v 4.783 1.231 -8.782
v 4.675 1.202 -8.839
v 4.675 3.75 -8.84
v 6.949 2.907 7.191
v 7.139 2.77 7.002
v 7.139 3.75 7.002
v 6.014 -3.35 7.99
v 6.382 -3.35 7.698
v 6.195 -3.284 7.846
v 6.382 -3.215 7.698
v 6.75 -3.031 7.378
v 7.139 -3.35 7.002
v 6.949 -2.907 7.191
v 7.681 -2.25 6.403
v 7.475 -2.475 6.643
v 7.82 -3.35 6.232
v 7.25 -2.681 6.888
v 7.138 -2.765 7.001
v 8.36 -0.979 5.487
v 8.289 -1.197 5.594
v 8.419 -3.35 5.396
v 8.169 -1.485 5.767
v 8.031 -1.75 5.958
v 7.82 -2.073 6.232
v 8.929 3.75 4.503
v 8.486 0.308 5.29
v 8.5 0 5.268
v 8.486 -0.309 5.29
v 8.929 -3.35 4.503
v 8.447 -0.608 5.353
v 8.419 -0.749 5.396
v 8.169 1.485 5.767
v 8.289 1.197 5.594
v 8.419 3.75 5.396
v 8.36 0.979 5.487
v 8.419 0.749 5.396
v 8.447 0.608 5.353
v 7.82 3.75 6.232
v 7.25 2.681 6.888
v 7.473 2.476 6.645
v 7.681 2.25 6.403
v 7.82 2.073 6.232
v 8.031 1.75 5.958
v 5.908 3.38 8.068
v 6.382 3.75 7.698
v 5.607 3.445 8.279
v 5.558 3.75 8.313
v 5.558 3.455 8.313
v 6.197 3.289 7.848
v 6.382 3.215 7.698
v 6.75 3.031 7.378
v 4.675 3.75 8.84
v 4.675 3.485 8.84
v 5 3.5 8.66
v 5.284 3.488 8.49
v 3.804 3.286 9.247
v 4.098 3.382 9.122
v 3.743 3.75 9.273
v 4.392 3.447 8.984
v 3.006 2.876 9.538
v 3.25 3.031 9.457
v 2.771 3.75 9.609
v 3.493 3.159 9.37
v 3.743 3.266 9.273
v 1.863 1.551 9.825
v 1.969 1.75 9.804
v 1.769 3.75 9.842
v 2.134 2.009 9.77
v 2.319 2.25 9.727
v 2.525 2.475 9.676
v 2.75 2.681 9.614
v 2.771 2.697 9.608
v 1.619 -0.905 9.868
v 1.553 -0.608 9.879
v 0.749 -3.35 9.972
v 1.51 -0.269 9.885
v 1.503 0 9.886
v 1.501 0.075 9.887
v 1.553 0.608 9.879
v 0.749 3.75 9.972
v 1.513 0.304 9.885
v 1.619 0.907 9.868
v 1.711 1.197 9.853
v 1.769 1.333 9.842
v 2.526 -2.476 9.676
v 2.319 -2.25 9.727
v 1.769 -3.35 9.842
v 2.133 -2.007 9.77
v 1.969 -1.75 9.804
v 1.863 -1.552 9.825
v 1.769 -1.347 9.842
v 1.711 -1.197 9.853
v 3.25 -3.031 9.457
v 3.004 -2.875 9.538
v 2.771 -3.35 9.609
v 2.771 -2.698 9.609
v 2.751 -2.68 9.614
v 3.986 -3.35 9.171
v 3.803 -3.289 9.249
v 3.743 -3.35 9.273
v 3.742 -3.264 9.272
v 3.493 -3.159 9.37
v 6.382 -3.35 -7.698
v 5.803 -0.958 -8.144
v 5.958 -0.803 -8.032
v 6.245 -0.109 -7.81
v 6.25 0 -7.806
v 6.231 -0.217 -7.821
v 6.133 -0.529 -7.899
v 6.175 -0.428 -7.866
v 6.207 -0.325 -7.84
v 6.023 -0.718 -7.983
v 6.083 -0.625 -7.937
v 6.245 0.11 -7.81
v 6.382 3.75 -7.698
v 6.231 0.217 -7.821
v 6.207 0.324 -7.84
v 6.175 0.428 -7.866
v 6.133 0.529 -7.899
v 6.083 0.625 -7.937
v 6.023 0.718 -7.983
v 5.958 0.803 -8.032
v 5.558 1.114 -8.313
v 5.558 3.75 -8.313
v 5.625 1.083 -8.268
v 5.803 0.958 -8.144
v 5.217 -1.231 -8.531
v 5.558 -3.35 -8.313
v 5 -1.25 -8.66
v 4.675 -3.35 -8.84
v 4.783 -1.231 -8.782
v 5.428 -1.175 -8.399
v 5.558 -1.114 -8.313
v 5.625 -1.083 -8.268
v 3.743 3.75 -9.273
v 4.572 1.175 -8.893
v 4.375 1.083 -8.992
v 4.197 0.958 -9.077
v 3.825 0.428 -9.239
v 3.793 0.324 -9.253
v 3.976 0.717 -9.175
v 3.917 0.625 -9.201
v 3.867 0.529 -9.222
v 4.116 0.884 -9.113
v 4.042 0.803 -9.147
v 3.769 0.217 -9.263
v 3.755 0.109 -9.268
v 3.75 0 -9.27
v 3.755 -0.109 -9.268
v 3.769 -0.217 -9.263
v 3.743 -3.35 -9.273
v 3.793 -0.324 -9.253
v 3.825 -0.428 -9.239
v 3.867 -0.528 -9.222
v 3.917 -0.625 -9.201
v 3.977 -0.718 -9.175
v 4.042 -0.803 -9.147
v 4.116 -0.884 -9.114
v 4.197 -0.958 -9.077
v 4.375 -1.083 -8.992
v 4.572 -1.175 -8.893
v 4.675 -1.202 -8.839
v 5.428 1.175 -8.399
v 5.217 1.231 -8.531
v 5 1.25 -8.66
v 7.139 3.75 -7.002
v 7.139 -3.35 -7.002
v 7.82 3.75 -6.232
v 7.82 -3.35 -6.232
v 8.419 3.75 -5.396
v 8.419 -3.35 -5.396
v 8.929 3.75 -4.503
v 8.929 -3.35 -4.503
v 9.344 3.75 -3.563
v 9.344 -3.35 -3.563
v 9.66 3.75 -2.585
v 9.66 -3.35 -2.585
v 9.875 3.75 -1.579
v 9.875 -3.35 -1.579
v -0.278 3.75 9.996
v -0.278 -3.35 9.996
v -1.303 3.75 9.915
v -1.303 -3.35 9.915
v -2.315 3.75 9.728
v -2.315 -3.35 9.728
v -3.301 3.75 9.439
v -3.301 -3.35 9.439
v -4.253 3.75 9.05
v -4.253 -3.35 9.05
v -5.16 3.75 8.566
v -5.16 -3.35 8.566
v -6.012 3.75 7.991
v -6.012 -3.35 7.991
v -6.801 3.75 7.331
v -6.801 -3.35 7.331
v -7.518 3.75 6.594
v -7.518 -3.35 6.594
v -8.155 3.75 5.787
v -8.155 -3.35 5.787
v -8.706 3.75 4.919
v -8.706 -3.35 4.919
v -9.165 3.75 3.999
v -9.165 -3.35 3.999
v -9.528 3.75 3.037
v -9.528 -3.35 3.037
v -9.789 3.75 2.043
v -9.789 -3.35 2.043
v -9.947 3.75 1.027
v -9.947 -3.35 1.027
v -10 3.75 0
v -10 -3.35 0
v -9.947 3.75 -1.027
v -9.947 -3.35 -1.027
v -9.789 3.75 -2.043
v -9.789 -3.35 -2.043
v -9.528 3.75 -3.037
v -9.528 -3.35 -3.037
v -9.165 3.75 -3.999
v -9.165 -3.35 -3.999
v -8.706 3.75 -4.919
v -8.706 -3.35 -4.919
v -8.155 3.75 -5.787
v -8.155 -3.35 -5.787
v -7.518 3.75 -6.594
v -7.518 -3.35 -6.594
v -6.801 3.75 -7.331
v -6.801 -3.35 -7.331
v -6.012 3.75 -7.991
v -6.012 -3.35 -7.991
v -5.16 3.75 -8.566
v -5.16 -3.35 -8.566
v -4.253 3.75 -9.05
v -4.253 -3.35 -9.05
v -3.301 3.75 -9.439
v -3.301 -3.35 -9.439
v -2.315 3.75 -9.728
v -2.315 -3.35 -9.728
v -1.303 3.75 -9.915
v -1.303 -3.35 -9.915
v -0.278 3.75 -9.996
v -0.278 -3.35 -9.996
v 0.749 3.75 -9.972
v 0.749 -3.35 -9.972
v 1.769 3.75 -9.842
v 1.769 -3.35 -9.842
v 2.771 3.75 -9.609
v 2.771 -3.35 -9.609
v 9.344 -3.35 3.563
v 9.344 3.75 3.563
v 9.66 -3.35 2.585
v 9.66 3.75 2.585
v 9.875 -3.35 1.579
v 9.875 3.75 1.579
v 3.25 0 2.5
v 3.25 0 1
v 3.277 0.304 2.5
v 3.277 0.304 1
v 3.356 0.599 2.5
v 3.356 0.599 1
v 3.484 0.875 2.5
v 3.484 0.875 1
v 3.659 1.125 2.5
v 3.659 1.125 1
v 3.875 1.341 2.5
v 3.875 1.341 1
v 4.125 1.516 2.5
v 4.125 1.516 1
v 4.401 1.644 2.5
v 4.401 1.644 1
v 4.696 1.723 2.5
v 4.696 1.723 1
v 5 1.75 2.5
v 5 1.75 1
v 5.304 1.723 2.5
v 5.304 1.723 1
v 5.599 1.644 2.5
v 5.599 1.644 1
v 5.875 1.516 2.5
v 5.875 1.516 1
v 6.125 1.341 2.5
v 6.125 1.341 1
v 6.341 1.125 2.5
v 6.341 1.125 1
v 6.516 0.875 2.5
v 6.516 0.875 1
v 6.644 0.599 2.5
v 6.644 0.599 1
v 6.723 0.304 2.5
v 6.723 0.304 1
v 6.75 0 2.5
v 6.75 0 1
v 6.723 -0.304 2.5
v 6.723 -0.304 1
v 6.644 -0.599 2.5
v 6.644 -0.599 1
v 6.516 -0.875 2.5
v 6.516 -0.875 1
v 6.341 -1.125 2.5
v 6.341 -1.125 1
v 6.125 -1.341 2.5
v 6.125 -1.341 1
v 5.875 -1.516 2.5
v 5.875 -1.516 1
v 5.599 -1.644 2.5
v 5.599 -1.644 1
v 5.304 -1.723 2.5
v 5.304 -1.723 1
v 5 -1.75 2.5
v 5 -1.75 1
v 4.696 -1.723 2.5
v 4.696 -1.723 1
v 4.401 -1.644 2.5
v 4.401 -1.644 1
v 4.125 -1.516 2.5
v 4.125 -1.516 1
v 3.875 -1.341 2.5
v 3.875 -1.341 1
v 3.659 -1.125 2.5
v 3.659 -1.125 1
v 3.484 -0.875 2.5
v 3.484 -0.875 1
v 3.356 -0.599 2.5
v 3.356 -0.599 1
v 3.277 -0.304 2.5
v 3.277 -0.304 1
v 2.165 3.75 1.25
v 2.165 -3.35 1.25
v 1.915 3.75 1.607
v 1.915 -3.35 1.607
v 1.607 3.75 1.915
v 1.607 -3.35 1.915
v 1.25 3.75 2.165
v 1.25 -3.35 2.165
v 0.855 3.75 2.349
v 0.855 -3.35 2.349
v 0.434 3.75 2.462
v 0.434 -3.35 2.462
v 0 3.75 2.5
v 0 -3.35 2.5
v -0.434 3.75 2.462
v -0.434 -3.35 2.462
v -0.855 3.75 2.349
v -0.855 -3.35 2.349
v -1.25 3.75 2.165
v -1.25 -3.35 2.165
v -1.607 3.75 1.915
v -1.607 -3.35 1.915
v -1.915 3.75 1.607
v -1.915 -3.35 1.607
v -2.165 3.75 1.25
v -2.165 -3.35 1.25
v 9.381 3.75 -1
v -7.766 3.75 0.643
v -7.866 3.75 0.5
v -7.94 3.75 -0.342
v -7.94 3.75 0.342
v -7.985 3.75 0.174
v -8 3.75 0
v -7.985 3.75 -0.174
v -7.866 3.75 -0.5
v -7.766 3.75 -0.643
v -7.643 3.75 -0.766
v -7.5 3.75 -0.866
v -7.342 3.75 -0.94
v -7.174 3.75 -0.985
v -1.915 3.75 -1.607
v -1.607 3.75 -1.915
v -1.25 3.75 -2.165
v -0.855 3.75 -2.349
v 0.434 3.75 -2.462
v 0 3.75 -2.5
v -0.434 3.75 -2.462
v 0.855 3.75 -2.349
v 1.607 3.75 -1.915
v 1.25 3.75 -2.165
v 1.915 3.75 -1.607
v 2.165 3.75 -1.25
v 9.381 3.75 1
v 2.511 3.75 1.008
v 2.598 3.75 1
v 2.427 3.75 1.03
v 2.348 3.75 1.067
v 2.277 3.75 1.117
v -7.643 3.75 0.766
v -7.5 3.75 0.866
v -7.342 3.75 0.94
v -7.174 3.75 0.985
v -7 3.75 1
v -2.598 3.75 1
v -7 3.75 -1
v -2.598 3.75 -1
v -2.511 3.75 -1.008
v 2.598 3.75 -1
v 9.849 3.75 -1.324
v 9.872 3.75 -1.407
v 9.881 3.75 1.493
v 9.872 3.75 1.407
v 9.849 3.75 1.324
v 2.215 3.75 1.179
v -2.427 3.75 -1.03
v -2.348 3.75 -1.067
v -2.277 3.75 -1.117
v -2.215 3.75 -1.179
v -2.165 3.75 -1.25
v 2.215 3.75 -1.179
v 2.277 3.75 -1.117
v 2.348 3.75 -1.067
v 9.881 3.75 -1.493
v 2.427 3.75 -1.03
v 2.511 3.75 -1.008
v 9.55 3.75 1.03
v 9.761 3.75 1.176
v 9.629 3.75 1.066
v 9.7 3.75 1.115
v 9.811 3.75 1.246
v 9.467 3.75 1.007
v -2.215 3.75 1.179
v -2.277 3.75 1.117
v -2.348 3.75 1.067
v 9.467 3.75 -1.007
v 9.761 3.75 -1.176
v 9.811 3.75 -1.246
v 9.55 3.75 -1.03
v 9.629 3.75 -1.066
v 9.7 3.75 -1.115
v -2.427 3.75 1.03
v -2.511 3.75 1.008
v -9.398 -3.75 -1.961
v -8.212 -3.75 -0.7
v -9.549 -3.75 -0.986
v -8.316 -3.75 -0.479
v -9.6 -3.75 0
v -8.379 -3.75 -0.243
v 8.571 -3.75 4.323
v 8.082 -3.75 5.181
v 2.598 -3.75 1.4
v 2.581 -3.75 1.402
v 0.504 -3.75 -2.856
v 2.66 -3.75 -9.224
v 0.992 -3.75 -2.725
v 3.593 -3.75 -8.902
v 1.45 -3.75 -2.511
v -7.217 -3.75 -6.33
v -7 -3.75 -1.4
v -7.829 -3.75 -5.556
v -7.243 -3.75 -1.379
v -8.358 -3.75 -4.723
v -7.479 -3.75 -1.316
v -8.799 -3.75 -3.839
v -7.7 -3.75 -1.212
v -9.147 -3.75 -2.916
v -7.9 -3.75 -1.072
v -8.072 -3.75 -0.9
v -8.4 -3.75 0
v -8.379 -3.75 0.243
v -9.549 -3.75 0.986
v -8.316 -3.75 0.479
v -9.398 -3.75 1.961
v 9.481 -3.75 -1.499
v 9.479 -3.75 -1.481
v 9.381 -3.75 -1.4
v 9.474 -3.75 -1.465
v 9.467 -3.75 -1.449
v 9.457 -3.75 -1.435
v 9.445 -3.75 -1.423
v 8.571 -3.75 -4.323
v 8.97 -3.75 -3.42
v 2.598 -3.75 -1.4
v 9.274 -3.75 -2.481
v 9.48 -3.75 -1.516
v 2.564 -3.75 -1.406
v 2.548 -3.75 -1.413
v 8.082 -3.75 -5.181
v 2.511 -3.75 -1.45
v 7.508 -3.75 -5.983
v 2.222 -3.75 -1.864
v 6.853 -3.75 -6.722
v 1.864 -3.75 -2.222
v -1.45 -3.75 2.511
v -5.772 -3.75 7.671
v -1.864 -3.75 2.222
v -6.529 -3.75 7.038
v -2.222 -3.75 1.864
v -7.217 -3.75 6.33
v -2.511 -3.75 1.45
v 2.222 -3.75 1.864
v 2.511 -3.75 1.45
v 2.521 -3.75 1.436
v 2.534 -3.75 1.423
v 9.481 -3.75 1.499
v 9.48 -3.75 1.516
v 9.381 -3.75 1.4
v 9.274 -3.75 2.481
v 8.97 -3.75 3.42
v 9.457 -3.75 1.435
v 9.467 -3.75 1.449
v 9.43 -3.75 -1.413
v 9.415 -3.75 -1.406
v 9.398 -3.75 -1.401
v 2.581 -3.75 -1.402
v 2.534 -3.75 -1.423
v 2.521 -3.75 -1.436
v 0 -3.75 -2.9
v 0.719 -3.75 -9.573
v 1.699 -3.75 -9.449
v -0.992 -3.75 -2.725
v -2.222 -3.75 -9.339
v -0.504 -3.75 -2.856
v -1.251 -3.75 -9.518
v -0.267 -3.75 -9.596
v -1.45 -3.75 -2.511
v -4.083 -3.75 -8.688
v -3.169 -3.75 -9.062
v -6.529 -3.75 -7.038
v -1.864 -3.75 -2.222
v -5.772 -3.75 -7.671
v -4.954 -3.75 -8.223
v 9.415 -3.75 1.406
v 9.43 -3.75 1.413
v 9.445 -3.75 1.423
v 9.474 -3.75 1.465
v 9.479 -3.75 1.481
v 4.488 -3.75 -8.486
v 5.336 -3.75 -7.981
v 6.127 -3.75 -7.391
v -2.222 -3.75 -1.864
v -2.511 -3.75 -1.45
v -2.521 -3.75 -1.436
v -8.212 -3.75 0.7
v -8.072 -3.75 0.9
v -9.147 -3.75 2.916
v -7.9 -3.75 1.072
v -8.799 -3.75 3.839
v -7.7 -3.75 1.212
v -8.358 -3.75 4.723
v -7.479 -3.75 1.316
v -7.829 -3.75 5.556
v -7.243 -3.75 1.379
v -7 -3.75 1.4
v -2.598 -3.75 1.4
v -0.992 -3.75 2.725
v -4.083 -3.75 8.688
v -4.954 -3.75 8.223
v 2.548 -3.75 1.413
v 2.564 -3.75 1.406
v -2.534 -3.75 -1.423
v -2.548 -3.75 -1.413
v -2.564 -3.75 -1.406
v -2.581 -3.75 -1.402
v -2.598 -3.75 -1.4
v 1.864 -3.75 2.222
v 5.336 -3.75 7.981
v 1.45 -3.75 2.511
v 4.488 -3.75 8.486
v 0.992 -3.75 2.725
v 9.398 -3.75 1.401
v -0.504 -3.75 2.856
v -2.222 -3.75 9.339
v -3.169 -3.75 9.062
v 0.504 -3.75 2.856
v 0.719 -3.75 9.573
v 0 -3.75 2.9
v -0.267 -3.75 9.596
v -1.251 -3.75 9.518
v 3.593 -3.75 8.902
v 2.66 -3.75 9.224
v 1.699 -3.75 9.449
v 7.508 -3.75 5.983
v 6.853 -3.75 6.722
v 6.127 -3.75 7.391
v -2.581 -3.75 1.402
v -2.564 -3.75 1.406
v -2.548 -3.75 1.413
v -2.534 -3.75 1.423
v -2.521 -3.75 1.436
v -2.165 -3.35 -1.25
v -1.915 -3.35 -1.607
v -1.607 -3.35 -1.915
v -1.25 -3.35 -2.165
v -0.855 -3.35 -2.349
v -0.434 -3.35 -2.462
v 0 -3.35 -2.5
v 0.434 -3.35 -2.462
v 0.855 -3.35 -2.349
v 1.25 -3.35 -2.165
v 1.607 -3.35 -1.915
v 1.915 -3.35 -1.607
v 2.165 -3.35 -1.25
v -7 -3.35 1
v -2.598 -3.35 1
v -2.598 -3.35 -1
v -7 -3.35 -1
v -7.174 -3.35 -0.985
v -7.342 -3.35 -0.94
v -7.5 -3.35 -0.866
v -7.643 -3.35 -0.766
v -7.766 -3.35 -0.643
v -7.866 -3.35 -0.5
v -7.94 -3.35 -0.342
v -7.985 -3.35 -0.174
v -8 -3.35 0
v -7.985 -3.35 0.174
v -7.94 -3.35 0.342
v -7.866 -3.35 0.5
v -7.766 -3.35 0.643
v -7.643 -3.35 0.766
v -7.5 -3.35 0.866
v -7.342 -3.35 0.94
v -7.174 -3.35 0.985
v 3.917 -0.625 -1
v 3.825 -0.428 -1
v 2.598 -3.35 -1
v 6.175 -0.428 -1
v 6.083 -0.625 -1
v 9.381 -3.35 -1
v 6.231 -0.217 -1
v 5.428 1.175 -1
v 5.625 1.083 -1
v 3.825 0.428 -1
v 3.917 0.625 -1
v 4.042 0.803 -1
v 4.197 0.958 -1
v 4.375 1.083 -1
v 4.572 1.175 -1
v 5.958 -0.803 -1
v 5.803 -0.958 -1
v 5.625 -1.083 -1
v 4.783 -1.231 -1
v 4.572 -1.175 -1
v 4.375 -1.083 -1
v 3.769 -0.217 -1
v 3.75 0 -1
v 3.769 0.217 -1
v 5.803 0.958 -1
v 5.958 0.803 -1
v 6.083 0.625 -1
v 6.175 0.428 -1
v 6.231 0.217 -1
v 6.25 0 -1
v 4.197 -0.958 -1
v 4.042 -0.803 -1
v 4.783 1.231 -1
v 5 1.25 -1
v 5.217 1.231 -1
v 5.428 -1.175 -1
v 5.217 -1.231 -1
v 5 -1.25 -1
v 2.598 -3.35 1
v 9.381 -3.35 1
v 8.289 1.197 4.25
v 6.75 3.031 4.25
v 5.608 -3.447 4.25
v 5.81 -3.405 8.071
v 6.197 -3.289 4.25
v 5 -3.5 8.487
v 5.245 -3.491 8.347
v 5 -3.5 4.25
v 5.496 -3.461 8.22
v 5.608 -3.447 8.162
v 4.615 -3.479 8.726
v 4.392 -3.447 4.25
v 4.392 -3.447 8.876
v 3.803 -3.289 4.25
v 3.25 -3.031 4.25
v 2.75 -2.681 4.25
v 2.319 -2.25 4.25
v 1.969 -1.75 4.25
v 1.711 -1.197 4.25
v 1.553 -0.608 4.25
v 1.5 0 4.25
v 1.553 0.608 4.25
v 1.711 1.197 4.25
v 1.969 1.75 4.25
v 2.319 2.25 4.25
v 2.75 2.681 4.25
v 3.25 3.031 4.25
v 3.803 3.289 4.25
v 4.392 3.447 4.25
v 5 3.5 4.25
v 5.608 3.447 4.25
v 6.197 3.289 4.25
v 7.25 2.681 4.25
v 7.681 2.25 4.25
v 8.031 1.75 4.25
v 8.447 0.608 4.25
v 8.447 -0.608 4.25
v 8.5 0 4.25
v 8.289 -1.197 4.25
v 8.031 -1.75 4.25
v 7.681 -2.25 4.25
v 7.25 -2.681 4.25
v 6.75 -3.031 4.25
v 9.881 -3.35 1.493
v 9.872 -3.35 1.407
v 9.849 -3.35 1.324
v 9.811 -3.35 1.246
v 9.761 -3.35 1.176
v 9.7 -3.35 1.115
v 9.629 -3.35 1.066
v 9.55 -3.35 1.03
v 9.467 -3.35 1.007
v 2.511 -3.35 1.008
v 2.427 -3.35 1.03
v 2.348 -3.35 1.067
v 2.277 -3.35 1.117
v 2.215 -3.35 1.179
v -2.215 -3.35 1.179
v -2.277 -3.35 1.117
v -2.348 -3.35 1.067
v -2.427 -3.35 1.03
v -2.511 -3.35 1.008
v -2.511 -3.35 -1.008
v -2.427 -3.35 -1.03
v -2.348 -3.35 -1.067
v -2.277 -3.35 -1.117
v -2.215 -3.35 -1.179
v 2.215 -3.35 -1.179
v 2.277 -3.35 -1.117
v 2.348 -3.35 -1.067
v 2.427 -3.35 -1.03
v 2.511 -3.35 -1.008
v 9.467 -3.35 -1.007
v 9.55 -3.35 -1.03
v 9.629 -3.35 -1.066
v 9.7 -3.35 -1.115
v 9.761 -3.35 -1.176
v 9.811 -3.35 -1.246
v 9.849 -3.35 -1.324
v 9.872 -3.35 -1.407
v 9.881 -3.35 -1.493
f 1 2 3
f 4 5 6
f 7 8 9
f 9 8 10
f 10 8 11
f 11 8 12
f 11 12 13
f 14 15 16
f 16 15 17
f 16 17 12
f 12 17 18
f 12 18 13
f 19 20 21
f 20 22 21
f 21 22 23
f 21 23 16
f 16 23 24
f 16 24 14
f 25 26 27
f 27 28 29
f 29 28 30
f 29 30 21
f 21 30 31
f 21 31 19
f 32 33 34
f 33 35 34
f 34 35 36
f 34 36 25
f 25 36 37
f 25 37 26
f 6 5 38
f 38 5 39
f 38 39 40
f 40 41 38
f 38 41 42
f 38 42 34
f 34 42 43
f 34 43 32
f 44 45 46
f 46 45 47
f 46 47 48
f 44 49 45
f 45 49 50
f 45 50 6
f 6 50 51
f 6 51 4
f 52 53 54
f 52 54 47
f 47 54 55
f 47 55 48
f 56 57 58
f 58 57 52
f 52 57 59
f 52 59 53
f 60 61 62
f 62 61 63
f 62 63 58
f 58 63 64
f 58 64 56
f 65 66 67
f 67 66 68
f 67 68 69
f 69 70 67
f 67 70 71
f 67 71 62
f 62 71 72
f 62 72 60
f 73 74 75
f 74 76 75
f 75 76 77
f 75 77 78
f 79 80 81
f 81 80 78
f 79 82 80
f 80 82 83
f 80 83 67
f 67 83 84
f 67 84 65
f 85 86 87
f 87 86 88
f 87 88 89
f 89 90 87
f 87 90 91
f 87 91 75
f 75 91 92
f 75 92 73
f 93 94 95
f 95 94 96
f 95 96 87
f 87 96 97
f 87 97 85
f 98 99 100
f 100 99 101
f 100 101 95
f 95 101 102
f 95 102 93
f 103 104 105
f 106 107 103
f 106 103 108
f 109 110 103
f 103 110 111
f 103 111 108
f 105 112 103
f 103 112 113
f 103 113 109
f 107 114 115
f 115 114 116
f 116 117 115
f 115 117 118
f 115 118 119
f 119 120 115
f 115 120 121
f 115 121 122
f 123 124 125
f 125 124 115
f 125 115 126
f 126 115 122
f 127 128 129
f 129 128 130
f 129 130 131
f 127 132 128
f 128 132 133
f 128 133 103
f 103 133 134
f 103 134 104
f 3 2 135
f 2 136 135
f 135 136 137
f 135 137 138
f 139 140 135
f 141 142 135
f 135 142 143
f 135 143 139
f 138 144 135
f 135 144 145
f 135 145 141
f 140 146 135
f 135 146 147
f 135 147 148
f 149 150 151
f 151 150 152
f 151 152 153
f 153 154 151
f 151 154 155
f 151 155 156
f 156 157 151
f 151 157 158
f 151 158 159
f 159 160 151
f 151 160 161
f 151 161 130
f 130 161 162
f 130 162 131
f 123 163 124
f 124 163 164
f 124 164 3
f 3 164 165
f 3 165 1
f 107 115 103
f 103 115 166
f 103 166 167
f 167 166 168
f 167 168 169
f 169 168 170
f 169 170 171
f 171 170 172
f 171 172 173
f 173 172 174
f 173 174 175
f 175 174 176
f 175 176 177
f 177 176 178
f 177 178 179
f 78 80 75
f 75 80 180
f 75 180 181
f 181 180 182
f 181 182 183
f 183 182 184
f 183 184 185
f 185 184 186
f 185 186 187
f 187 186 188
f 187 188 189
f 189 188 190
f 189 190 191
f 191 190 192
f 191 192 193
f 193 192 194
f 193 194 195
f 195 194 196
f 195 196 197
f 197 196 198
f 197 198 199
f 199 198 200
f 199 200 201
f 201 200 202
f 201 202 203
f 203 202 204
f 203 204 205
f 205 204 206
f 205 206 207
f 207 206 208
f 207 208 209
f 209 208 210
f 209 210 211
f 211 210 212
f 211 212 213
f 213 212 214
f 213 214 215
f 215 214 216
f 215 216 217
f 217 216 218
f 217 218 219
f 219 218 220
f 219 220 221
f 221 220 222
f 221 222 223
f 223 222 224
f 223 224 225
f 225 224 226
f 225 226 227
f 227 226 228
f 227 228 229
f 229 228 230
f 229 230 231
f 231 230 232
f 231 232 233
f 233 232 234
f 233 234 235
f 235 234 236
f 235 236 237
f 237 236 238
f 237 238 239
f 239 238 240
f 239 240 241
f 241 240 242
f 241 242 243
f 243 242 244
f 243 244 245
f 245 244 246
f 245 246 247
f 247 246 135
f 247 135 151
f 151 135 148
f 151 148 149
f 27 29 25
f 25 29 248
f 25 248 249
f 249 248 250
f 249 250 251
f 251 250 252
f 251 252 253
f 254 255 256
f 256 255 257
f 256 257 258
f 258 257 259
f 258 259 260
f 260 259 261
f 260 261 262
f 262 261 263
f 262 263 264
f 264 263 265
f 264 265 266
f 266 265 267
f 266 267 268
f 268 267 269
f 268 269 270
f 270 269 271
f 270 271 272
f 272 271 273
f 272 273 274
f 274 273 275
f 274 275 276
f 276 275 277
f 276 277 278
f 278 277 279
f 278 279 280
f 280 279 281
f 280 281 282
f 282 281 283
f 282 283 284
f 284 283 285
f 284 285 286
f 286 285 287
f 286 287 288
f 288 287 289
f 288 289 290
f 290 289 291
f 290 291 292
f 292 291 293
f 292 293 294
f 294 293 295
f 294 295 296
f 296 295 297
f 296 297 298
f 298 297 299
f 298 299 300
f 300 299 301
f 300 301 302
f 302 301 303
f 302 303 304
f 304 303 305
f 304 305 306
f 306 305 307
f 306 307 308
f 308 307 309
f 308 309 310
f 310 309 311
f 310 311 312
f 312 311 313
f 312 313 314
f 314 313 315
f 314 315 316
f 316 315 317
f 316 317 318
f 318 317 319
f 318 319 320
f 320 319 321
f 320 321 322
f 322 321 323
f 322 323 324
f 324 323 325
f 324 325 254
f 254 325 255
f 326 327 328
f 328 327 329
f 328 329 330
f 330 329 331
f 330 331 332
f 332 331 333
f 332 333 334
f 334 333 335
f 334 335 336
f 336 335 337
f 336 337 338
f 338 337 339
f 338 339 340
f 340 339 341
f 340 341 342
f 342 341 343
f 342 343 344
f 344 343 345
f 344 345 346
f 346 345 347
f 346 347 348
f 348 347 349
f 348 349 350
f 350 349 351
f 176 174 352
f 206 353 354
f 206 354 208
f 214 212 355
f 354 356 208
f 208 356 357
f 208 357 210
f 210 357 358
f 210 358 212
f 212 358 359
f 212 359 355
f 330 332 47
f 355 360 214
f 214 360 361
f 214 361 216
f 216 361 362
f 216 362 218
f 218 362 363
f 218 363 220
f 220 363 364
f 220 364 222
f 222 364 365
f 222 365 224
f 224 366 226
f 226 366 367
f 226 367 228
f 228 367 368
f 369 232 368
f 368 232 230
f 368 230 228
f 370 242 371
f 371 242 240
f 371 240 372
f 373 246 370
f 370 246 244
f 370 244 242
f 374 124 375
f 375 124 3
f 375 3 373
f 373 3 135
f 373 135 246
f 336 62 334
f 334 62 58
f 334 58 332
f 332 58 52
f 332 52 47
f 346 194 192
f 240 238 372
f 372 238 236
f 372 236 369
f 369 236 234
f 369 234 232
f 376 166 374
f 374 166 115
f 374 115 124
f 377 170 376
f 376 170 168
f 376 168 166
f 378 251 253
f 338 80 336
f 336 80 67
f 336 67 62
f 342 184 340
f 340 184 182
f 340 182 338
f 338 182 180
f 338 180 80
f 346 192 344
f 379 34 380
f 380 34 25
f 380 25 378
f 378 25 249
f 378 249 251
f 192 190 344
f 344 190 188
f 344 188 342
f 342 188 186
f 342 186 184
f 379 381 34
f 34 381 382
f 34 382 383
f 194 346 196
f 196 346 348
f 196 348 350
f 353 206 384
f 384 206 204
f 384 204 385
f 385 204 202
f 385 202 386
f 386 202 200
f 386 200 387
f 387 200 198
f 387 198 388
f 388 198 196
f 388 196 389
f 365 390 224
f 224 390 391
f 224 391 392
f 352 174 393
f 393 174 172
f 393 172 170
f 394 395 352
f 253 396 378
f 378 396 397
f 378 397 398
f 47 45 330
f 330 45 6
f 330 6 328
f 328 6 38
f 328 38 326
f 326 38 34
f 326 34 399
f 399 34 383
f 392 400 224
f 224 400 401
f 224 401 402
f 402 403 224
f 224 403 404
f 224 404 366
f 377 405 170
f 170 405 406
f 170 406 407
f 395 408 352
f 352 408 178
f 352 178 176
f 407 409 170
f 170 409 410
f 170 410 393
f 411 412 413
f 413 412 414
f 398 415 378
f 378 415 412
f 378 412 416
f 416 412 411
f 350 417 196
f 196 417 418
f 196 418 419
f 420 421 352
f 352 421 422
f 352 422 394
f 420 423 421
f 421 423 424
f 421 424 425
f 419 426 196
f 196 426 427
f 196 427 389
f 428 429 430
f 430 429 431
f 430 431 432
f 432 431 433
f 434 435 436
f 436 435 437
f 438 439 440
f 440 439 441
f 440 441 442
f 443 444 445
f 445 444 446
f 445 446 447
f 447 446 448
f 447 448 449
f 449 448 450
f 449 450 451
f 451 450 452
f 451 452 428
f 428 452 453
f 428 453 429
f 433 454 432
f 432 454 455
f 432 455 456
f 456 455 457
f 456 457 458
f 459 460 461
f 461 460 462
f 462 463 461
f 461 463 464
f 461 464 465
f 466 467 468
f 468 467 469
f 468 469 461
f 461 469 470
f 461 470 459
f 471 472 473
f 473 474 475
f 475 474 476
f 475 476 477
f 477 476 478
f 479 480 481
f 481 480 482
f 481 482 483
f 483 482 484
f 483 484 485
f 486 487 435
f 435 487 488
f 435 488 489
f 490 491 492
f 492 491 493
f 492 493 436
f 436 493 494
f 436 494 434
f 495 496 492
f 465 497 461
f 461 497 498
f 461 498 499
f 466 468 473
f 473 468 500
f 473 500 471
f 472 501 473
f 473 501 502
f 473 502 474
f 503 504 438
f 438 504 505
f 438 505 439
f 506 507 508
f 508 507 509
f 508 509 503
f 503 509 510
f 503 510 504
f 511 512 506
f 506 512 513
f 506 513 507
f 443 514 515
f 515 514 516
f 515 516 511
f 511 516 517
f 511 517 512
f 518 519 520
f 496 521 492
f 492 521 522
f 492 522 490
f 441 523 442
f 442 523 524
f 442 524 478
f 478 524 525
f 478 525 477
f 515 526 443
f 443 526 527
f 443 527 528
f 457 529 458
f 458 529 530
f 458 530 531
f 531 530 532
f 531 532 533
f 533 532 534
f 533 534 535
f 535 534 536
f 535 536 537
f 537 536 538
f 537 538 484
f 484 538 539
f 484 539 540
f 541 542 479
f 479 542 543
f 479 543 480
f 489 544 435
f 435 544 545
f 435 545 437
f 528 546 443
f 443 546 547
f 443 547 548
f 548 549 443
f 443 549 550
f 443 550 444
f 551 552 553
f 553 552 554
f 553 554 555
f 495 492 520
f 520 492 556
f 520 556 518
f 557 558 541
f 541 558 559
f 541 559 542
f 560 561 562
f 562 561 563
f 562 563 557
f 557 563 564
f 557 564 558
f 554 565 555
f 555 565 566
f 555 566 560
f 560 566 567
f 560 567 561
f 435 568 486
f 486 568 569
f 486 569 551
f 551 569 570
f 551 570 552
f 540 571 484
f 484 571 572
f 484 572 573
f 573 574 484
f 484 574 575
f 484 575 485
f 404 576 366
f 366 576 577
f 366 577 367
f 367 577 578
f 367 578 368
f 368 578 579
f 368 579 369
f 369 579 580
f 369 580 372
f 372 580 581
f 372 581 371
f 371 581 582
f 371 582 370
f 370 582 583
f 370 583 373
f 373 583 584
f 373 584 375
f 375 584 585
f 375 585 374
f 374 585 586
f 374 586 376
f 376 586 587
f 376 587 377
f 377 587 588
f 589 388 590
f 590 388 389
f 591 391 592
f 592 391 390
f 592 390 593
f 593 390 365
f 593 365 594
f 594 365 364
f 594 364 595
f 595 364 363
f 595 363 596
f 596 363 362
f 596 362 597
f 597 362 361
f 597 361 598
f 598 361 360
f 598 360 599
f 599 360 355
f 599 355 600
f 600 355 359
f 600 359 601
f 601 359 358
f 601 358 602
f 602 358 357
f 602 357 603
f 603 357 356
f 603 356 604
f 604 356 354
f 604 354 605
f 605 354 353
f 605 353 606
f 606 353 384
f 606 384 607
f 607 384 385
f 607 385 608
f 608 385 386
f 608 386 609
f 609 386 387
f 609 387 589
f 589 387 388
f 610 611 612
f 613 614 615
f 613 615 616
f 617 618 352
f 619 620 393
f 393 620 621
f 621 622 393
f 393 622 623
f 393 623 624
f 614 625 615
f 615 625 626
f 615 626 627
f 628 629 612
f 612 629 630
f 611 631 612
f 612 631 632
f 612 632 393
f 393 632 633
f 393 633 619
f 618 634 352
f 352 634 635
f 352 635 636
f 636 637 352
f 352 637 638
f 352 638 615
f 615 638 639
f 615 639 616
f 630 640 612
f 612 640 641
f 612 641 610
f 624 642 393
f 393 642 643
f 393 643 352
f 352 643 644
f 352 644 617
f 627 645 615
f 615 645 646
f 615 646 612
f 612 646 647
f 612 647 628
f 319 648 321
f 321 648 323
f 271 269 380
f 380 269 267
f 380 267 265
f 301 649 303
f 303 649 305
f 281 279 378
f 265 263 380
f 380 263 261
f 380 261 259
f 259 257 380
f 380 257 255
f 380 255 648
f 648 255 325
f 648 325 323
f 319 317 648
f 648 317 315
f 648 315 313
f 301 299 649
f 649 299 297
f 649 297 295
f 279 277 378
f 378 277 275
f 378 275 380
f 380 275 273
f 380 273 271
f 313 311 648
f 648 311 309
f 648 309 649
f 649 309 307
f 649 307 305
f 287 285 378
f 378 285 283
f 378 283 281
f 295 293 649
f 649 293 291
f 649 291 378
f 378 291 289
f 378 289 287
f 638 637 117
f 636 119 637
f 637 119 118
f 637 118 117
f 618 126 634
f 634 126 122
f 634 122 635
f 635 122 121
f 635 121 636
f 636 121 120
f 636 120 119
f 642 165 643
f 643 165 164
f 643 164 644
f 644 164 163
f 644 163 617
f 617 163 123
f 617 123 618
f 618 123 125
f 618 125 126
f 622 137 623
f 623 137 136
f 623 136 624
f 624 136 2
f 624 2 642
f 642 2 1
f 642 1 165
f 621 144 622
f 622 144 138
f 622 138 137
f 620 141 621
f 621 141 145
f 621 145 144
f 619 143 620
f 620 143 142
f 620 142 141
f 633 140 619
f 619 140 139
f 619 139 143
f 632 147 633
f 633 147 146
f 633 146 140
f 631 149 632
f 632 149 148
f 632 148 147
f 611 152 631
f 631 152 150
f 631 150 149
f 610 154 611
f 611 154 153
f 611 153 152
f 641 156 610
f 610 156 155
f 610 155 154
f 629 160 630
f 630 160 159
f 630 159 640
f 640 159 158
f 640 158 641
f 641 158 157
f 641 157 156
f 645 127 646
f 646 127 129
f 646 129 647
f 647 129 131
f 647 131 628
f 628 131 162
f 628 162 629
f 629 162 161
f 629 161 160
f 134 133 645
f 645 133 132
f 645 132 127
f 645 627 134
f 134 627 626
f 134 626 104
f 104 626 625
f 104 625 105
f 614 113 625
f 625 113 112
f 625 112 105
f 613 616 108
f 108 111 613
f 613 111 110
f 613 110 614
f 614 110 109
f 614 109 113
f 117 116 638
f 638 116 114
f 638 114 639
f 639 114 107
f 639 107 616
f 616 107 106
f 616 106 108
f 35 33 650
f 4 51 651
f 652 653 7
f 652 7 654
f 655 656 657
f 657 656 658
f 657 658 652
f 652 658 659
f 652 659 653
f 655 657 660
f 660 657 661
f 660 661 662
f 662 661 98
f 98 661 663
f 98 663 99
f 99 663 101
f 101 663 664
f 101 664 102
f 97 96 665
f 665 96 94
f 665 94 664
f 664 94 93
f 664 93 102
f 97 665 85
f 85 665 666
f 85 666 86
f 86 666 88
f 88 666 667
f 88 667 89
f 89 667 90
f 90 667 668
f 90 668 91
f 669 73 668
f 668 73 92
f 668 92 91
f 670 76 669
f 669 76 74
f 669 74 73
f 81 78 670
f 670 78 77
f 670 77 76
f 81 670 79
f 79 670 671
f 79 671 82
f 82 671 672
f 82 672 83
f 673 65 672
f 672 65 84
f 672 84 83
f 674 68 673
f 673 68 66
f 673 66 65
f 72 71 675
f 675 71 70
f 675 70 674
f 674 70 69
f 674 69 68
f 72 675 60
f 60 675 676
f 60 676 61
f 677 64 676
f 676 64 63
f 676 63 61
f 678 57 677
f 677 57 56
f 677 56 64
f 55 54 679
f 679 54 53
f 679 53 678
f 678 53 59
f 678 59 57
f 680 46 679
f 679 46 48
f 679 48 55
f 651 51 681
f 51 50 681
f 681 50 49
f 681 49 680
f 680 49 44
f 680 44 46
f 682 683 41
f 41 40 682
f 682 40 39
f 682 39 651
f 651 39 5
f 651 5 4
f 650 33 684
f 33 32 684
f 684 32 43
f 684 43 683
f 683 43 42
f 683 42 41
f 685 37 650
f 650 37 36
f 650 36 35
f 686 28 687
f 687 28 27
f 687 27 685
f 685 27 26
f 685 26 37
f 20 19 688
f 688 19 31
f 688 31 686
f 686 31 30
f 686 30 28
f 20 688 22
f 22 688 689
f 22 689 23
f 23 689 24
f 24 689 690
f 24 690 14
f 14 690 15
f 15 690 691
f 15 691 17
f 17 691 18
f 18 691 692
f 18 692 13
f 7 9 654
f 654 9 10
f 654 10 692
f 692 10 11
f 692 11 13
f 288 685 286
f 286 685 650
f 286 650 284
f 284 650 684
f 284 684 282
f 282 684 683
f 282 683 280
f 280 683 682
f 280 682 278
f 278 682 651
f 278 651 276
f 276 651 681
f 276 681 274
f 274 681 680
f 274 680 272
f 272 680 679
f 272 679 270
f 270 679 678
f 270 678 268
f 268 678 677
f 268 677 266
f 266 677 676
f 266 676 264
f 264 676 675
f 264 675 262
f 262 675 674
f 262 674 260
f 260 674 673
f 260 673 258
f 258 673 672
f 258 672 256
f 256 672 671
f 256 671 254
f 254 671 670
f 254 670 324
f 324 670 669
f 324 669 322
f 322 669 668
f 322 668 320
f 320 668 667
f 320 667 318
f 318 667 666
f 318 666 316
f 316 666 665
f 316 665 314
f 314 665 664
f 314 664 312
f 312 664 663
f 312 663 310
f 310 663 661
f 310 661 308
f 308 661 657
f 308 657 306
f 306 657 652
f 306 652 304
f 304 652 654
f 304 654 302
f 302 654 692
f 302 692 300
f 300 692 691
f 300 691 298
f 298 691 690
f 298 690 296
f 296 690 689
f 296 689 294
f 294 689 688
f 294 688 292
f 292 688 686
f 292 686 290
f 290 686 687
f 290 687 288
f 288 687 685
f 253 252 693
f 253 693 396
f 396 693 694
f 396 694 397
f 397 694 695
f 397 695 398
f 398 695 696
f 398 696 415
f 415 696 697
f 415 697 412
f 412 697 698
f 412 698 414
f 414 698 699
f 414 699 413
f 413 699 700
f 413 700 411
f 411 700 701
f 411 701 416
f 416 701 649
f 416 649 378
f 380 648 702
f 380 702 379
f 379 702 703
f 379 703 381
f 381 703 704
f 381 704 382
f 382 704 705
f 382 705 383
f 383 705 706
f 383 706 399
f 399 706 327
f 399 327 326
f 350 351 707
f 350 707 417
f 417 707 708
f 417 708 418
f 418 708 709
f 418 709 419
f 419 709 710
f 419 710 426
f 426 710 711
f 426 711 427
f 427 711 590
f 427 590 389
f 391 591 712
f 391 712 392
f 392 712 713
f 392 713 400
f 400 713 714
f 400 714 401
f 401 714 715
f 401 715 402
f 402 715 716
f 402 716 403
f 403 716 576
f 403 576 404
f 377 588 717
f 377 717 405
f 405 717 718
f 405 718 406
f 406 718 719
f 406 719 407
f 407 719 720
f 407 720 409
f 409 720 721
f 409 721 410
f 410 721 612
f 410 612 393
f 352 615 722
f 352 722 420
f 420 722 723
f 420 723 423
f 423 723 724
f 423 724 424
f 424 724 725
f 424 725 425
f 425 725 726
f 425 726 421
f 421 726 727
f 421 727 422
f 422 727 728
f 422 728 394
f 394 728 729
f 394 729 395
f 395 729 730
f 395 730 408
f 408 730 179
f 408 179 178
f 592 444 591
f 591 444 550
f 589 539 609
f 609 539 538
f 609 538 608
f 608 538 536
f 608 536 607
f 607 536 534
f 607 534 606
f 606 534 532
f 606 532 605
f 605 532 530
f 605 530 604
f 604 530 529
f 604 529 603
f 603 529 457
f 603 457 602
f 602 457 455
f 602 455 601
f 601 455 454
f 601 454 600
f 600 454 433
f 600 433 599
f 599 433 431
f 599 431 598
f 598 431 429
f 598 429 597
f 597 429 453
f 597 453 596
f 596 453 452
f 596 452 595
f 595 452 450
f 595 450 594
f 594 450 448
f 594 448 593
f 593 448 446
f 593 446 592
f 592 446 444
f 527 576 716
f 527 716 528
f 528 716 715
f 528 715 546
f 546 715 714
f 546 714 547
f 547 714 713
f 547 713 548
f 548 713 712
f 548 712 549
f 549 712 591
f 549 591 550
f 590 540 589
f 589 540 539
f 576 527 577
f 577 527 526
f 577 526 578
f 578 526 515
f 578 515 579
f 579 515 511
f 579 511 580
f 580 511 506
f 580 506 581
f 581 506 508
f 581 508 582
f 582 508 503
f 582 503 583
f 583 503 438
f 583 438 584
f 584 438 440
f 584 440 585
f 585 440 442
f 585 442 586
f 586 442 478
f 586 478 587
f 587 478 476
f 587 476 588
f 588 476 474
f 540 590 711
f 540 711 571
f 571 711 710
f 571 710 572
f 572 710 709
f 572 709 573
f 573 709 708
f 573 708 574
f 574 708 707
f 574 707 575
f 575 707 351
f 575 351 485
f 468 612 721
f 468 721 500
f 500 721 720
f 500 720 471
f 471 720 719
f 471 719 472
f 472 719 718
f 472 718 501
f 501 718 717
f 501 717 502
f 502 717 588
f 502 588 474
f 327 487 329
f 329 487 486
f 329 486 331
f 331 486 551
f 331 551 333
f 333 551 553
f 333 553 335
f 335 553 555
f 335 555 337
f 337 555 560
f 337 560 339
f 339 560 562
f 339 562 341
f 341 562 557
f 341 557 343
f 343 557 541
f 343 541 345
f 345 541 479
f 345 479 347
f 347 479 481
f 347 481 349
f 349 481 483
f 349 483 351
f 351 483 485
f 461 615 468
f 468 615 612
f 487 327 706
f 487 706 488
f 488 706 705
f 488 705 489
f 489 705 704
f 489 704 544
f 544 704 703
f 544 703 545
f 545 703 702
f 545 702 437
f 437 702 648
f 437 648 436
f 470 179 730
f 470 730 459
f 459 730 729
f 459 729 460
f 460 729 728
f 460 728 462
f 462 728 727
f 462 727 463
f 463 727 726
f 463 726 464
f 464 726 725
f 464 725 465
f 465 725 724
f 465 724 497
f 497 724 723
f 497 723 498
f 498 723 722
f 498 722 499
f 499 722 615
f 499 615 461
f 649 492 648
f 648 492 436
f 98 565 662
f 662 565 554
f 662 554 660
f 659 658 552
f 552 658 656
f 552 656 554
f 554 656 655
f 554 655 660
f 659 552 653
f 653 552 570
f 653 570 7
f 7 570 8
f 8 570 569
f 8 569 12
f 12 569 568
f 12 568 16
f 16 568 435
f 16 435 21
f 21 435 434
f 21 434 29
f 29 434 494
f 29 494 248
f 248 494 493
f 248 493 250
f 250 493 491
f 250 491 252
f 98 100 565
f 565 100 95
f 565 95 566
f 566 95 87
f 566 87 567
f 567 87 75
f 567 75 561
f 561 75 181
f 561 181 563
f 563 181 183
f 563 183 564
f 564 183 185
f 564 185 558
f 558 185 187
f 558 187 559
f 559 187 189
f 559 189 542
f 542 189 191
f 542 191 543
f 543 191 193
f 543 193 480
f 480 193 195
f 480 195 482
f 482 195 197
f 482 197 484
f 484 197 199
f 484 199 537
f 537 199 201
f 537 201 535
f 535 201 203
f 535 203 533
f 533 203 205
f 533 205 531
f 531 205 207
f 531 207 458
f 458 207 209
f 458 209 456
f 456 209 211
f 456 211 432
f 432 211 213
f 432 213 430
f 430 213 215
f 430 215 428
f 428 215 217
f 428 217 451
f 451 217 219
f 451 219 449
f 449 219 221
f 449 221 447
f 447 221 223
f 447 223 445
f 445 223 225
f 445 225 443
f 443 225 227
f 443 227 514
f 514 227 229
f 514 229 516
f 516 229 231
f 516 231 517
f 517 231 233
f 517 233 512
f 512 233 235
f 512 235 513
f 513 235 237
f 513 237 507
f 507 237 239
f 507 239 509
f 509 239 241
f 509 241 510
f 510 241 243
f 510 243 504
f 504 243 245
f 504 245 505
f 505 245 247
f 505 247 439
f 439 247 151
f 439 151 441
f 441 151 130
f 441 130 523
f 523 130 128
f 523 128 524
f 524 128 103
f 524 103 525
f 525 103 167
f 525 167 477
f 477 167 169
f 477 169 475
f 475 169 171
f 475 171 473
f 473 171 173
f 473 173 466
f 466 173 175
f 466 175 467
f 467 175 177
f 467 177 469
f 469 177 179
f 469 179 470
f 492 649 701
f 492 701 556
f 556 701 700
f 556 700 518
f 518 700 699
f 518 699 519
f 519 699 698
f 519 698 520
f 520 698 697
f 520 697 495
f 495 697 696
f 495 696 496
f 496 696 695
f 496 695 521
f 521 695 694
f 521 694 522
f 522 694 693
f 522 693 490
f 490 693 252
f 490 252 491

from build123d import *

# Parameters (mm, degrees)
SKETCH1_R               = 10
SKETCH1_R_2             = 2.5
BOSS_EXTRUDE1_DEPTH     = 3.75
CUT_EXTRUDE1_DEPTH      = 17.007810594
CUT_EXTRUDE2_DEPTH      = 16.331748106
CUT_EXTRUDE2_DEPTH_BACK = 16.331748106
SKETCH3_R               = 1.25
SKETCH4_R               = 1.75
CUT_EXTRUDE3_DEPTH      = 16.331748268
CUT_EXTRUDE4_START      = 6
SKETCH5_R               = 3.5
CUT_EXTRUDE4_DEPTH      = 8
CHAMFER1_SIZE           = 2.5
FILLET1_R               = 0.5
CHAMFER2_SIZE           = 0.4


with BuildPart() as part:
    # Sketch1 → Boss-Extrude1 (new, symmetric)
    with BuildSketch(Plane(origin=(0, 0, 0), x_dir=(1, 0, 0), z_dir=(0, 1, 0))):
        with Locations(Location((0, 0, 0), (0, 0, 270))):
            Circle(SKETCH1_R)
        with Locations(Location((0, 0, 0), (0, 0, 270))):
            Circle(SKETCH1_R_2, mode=Mode.SUBTRACT)
    extrude(amount=BOSS_EXTRUDE1_DEPTH, both=True)

    # Sketch2 → Cut-Extrude1 (cut, through all)
    with BuildSketch(Plane(origin=(0, 3.75, 0), x_dir=(1, 0, 0), z_dir=(0, 1, 0))):
        with BuildLine():
            Line((10, -1), (-7, -1))
            ThreePointArc((-7, -1), (-8, 0), (-7, 1))
            Line((-7, 1), (10, 1))
            ThreePointArc((10, 1), (11, 0), (10, -1))
        make_face()
    extrude(amount=-CUT_EXTRUDE1_DEPTH, mode=Mode.SUBTRACT)

    # Sketch3 → Cut-Extrude2 (cut, two sides: drawn at the far end of the back side and taken through both)
    with BuildSketch(Plane.XY.offset(-1).offset(-CUT_EXTRUDE2_DEPTH_BACK)):
        with Locations((5, 0)):
            Circle(SKETCH3_R)
    extrude(amount=CUT_EXTRUDE2_DEPTH + CUT_EXTRUDE2_DEPTH_BACK, mode=Mode.SUBTRACT)

    # Sketch4 → Cut-Extrude3 (cut, through all)
    with BuildSketch(Plane.XY.offset(-1)):
        with Locations(Location((5, 0, 0), (0, 0, 180))):
            Circle(SKETCH4_R)
    extrude(amount=CUT_EXTRUDE3_DEPTH, mode=Mode.SUBTRACT)

    # Sketch5 → Cut-Extrude4 (cut)
    with BuildSketch(Plane.XY.offset(-1).offset(CUT_EXTRUDE4_START)):
        with Locations(Location((5, 0, 0), (0, 0, 180))):
            Circle(SKETCH5_R)
    extrude(amount=CUT_EXTRUDE4_DEPTH, mode=Mode.SUBTRACT)

    # Chamfer1
    # the kernel refuses this chamfer: 2.5 mm, written as the material it takes off along each edge
    with BuildSketch(Plane(origin=(5, 0, 5), x_dir=(-1, 0, 0), z_dir=(0, -1, 0))) as chamfer1_piece_1_section:
        Polygon((1.75, CHAMFER1_SIZE), (1.75 + CHAMFER1_SIZE, 0), (1.75, 0), align=None)
    chamfer1_piece_1 = revolve(axis=Axis((5, 0, 5), (0, 0, -1)), mode=Mode.PRIVATE)
    chamfer1_piece_1 = chamfer1_piece_1 & Plane(origin=(5, 0, 3.399981632), x_dir=(-1, 0, 0), z_dir=(0, 0, -1)) * Cylinder(3.5, 17, mode=Mode.PRIVATE)
    add(chamfer1_piece_1, mode=Mode.SUBTRACT)

    # Fillet1
    fillet1_edges = [part.edges().sort_by_distance(p)[0] for p in [
        (-2.291287847, 0, -1),
        (2.291287847, 0, -1),
        (2.291287847, 0, 1),
        (-2.291287847, 0, 1),
        (9.949874371, 0, 1),
        (9.949874371, 0, -1),
    ]]
    fillet(fillet1_edges, radius=FILLET1_R)

    # Chamfer2
    # the kernel refuses this chamfer: 0.4 mm, written as the material it takes off along each edge
    with BuildSketch(Plane(origin=(9.38083152, -3.75, 1.5), x_dir=(0.9874559494365127, 0, 0.15789473684209784), z_dir=(-0.15789473684209784, 0, 0.9874559494365127))) as chamfer2_piece_1:
        Polygon((0.5, CHAMFER2_SIZE), (0.5 - CHAMFER2_SIZE, 0), (0.5, 0), align=None)
    revolve(axis=Axis((9.38083152, -3.75, 1.5), (0, 1, 0)), revolution_arc=99.084720287, mode=Mode.SUBTRACT)
    with BuildSketch(Plane(origin=(0, -3.75, 0), x_dir=(0.9874559494365116, 0, -0.15789473684210514), z_dir=(0.15789473684210514, 0, 0.9874559494365116))) as chamfer2_piece_2:
        Polygon((10, CHAMFER2_SIZE), (10 - CHAMFER2_SIZE, 0), (10, 0), align=None)
    revolve(axis=Axis((0, -3.75, 0), (0, 1, 0)), revolution_arc=341.830559425, mode=Mode.SUBTRACT)
    with BuildSketch(Plane(origin=(9.38083152, -3.75, 1), x_dir=(0, -0.027495876610586285, 0.9996219169112968), z_dir=(-1, 0, 0)), Plane(origin=(2.598076211, -3.75, -1), x_dir=(0, -0.027495876610586285, -0.9996219169112968), z_dir=(1, 0, 0))) as chamfer2_piece_3:
        Polygon((CHAMFER2_SIZE * 0.999621916911, CHAMFER2_SIZE * 0.0274958766106), (-CHAMFER2_SIZE * 0.0274958766106, CHAMFER2_SIZE * 0.999621916911), (0, 0), align=None)
    extrude(amount=6.782755308, mode=Mode.SUBTRACT)
    with BuildSketch(Plane(origin=(9.38083152, -3.75, -1.5), x_dir=(0.9874559494365118, 0, -0.1578947368421039), z_dir=(-0.1578947368421039, 0, -0.9874559494365118))) as chamfer2_piece_4:
        Polygon((0.5, -CHAMFER2_SIZE), (0.5 - CHAMFER2_SIZE, 0), (0.5, 0), align=None)
    revolve(axis=Axis((9.38083152, -3.75, -1.5), (0, -1, 0)), revolution_arc=99.084720287, mode=Mode.SUBTRACT)
    with BuildSketch(Plane(origin=(2.598076211, -3.75, 1.5), x_dir=(-0.8660254037844399, 0, -0.49999999999999767), z_dir=(-0.49999999999999767, 0, 0.8660254037844399))) as chamfer2_piece_5:
        Polygon((0.5 - CHAMFER2_SIZE, 0), (0.5, -CHAMFER2_SIZE), (0.5, 0), align=None)
    revolve(axis=Axis((2.598076211, -3.75, 1.5), (0, -1, 0)), revolution_arc=60, mode=Mode.SUBTRACT)
    with BuildSketch(Plane(origin=(0, -3.75, 0), x_dir=(-0.8660254037844383, 0, 0.5000000000000007), z_dir=(-0.5000000000000007, 0, -0.8660254037844383))) as chamfer2_piece_6:
        Polygon((2.5 + CHAMFER2_SIZE, 0), (2.5, CHAMFER2_SIZE), (2.5, 0), align=None)
    revolve(axis=Axis((0, -3.75, 0), (0, 1, 0)), revolution_arc=120, mode=Mode.SUBTRACT)
    with BuildSketch(Plane(origin=(2.598076211, -3.75, -1.5), x_dir=(-0.866025403784439, 0, 0.49999999999999944), z_dir=(-0.49999999999999944, 0, -0.866025403784439))) as chamfer2_piece_7:
        Polygon((0.5 - CHAMFER2_SIZE, 0), (0.5, CHAMFER2_SIZE), (0.5, 0), align=None)
    revolve(axis=Axis((2.598076211, -3.75, -1.5), (0, 1, 0)), revolution_arc=60, mode=Mode.SUBTRACT)
    with BuildSketch(Plane(origin=(-2.598076211, -3.75, 1.5), x_dir=(0, 0, -1), z_dir=(-1, 0, 0))) as chamfer2_piece_8:
        Polygon((0.5 - CHAMFER2_SIZE, 0), (0.5, -CHAMFER2_SIZE), (0.5, 0), align=None)
    revolve(axis=Axis((-2.598076211, -3.75, 1.5), (0, -1, 0)), revolution_arc=60, mode=Mode.SUBTRACT)
    with BuildSketch(Plane(origin=(0, -3.75, 0), x_dir=(0.8660254037844389, 0, -0.49999999999999967), z_dir=(0.49999999999999967, 0, 0.8660254037844389))) as chamfer2_piece_9:
        Polygon((2.5 + CHAMFER2_SIZE, 0), (2.5, CHAMFER2_SIZE), (2.5, 0), align=None)
    revolve(axis=Axis((0, -3.75, 0), (0, 1, 0)), revolution_arc=120, mode=Mode.SUBTRACT)
    with BuildSketch(Plane(origin=(-2.598076211, -3.75, 1), x_dir=(0, -0.027495876610586285, 0.9996219169112968), z_dir=(-1, 0, 0)), Plane(origin=(-7, -3.75, -1), x_dir=(0, -0.027495876610586275, -0.9996219169112966), z_dir=(1, 0, 0))) as chamfer2_piece_10:
        Polygon((CHAMFER2_SIZE * 0.999621916911, CHAMFER2_SIZE * 0.0274958766106), (-CHAMFER2_SIZE * 0.0274958766106, CHAMFER2_SIZE * 0.999621916911), (0, 0), align=None)
    extrude(amount=4.401923789, mode=Mode.SUBTRACT)
    with BuildSketch(Plane(origin=(-2.598076211, -3.75, -1.5), x_dir=(0.8660254037844403, 0, 0.4999999999999974), z_dir=(0.4999999999999974, 0, -0.8660254037844403))) as chamfer2_piece_11:
        Polygon((0.5 - CHAMFER2_SIZE, 0), (0.5, -CHAMFER2_SIZE), (0.5, 0), align=None)
    revolve(axis=Axis((-2.598076211, -3.75, -1.5), (0, -1, 0)), revolution_arc=60, mode=Mode.SUBTRACT)
    with BuildSketch(Plane(origin=(-7, -3.75, 0), x_dir=(0, 0, -1), z_dir=(1, 0, 0))) as chamfer2_piece_12:
        Polygon((1 + CHAMFER2_SIZE, 0), (1, CHAMFER2_SIZE), (1, 0), align=None)
    revolve(axis=Axis((-7, -3.75, 0), (0, 1, 0)), revolution_arc=180, mode=Mode.SUBTRACT)


solid = part.part
